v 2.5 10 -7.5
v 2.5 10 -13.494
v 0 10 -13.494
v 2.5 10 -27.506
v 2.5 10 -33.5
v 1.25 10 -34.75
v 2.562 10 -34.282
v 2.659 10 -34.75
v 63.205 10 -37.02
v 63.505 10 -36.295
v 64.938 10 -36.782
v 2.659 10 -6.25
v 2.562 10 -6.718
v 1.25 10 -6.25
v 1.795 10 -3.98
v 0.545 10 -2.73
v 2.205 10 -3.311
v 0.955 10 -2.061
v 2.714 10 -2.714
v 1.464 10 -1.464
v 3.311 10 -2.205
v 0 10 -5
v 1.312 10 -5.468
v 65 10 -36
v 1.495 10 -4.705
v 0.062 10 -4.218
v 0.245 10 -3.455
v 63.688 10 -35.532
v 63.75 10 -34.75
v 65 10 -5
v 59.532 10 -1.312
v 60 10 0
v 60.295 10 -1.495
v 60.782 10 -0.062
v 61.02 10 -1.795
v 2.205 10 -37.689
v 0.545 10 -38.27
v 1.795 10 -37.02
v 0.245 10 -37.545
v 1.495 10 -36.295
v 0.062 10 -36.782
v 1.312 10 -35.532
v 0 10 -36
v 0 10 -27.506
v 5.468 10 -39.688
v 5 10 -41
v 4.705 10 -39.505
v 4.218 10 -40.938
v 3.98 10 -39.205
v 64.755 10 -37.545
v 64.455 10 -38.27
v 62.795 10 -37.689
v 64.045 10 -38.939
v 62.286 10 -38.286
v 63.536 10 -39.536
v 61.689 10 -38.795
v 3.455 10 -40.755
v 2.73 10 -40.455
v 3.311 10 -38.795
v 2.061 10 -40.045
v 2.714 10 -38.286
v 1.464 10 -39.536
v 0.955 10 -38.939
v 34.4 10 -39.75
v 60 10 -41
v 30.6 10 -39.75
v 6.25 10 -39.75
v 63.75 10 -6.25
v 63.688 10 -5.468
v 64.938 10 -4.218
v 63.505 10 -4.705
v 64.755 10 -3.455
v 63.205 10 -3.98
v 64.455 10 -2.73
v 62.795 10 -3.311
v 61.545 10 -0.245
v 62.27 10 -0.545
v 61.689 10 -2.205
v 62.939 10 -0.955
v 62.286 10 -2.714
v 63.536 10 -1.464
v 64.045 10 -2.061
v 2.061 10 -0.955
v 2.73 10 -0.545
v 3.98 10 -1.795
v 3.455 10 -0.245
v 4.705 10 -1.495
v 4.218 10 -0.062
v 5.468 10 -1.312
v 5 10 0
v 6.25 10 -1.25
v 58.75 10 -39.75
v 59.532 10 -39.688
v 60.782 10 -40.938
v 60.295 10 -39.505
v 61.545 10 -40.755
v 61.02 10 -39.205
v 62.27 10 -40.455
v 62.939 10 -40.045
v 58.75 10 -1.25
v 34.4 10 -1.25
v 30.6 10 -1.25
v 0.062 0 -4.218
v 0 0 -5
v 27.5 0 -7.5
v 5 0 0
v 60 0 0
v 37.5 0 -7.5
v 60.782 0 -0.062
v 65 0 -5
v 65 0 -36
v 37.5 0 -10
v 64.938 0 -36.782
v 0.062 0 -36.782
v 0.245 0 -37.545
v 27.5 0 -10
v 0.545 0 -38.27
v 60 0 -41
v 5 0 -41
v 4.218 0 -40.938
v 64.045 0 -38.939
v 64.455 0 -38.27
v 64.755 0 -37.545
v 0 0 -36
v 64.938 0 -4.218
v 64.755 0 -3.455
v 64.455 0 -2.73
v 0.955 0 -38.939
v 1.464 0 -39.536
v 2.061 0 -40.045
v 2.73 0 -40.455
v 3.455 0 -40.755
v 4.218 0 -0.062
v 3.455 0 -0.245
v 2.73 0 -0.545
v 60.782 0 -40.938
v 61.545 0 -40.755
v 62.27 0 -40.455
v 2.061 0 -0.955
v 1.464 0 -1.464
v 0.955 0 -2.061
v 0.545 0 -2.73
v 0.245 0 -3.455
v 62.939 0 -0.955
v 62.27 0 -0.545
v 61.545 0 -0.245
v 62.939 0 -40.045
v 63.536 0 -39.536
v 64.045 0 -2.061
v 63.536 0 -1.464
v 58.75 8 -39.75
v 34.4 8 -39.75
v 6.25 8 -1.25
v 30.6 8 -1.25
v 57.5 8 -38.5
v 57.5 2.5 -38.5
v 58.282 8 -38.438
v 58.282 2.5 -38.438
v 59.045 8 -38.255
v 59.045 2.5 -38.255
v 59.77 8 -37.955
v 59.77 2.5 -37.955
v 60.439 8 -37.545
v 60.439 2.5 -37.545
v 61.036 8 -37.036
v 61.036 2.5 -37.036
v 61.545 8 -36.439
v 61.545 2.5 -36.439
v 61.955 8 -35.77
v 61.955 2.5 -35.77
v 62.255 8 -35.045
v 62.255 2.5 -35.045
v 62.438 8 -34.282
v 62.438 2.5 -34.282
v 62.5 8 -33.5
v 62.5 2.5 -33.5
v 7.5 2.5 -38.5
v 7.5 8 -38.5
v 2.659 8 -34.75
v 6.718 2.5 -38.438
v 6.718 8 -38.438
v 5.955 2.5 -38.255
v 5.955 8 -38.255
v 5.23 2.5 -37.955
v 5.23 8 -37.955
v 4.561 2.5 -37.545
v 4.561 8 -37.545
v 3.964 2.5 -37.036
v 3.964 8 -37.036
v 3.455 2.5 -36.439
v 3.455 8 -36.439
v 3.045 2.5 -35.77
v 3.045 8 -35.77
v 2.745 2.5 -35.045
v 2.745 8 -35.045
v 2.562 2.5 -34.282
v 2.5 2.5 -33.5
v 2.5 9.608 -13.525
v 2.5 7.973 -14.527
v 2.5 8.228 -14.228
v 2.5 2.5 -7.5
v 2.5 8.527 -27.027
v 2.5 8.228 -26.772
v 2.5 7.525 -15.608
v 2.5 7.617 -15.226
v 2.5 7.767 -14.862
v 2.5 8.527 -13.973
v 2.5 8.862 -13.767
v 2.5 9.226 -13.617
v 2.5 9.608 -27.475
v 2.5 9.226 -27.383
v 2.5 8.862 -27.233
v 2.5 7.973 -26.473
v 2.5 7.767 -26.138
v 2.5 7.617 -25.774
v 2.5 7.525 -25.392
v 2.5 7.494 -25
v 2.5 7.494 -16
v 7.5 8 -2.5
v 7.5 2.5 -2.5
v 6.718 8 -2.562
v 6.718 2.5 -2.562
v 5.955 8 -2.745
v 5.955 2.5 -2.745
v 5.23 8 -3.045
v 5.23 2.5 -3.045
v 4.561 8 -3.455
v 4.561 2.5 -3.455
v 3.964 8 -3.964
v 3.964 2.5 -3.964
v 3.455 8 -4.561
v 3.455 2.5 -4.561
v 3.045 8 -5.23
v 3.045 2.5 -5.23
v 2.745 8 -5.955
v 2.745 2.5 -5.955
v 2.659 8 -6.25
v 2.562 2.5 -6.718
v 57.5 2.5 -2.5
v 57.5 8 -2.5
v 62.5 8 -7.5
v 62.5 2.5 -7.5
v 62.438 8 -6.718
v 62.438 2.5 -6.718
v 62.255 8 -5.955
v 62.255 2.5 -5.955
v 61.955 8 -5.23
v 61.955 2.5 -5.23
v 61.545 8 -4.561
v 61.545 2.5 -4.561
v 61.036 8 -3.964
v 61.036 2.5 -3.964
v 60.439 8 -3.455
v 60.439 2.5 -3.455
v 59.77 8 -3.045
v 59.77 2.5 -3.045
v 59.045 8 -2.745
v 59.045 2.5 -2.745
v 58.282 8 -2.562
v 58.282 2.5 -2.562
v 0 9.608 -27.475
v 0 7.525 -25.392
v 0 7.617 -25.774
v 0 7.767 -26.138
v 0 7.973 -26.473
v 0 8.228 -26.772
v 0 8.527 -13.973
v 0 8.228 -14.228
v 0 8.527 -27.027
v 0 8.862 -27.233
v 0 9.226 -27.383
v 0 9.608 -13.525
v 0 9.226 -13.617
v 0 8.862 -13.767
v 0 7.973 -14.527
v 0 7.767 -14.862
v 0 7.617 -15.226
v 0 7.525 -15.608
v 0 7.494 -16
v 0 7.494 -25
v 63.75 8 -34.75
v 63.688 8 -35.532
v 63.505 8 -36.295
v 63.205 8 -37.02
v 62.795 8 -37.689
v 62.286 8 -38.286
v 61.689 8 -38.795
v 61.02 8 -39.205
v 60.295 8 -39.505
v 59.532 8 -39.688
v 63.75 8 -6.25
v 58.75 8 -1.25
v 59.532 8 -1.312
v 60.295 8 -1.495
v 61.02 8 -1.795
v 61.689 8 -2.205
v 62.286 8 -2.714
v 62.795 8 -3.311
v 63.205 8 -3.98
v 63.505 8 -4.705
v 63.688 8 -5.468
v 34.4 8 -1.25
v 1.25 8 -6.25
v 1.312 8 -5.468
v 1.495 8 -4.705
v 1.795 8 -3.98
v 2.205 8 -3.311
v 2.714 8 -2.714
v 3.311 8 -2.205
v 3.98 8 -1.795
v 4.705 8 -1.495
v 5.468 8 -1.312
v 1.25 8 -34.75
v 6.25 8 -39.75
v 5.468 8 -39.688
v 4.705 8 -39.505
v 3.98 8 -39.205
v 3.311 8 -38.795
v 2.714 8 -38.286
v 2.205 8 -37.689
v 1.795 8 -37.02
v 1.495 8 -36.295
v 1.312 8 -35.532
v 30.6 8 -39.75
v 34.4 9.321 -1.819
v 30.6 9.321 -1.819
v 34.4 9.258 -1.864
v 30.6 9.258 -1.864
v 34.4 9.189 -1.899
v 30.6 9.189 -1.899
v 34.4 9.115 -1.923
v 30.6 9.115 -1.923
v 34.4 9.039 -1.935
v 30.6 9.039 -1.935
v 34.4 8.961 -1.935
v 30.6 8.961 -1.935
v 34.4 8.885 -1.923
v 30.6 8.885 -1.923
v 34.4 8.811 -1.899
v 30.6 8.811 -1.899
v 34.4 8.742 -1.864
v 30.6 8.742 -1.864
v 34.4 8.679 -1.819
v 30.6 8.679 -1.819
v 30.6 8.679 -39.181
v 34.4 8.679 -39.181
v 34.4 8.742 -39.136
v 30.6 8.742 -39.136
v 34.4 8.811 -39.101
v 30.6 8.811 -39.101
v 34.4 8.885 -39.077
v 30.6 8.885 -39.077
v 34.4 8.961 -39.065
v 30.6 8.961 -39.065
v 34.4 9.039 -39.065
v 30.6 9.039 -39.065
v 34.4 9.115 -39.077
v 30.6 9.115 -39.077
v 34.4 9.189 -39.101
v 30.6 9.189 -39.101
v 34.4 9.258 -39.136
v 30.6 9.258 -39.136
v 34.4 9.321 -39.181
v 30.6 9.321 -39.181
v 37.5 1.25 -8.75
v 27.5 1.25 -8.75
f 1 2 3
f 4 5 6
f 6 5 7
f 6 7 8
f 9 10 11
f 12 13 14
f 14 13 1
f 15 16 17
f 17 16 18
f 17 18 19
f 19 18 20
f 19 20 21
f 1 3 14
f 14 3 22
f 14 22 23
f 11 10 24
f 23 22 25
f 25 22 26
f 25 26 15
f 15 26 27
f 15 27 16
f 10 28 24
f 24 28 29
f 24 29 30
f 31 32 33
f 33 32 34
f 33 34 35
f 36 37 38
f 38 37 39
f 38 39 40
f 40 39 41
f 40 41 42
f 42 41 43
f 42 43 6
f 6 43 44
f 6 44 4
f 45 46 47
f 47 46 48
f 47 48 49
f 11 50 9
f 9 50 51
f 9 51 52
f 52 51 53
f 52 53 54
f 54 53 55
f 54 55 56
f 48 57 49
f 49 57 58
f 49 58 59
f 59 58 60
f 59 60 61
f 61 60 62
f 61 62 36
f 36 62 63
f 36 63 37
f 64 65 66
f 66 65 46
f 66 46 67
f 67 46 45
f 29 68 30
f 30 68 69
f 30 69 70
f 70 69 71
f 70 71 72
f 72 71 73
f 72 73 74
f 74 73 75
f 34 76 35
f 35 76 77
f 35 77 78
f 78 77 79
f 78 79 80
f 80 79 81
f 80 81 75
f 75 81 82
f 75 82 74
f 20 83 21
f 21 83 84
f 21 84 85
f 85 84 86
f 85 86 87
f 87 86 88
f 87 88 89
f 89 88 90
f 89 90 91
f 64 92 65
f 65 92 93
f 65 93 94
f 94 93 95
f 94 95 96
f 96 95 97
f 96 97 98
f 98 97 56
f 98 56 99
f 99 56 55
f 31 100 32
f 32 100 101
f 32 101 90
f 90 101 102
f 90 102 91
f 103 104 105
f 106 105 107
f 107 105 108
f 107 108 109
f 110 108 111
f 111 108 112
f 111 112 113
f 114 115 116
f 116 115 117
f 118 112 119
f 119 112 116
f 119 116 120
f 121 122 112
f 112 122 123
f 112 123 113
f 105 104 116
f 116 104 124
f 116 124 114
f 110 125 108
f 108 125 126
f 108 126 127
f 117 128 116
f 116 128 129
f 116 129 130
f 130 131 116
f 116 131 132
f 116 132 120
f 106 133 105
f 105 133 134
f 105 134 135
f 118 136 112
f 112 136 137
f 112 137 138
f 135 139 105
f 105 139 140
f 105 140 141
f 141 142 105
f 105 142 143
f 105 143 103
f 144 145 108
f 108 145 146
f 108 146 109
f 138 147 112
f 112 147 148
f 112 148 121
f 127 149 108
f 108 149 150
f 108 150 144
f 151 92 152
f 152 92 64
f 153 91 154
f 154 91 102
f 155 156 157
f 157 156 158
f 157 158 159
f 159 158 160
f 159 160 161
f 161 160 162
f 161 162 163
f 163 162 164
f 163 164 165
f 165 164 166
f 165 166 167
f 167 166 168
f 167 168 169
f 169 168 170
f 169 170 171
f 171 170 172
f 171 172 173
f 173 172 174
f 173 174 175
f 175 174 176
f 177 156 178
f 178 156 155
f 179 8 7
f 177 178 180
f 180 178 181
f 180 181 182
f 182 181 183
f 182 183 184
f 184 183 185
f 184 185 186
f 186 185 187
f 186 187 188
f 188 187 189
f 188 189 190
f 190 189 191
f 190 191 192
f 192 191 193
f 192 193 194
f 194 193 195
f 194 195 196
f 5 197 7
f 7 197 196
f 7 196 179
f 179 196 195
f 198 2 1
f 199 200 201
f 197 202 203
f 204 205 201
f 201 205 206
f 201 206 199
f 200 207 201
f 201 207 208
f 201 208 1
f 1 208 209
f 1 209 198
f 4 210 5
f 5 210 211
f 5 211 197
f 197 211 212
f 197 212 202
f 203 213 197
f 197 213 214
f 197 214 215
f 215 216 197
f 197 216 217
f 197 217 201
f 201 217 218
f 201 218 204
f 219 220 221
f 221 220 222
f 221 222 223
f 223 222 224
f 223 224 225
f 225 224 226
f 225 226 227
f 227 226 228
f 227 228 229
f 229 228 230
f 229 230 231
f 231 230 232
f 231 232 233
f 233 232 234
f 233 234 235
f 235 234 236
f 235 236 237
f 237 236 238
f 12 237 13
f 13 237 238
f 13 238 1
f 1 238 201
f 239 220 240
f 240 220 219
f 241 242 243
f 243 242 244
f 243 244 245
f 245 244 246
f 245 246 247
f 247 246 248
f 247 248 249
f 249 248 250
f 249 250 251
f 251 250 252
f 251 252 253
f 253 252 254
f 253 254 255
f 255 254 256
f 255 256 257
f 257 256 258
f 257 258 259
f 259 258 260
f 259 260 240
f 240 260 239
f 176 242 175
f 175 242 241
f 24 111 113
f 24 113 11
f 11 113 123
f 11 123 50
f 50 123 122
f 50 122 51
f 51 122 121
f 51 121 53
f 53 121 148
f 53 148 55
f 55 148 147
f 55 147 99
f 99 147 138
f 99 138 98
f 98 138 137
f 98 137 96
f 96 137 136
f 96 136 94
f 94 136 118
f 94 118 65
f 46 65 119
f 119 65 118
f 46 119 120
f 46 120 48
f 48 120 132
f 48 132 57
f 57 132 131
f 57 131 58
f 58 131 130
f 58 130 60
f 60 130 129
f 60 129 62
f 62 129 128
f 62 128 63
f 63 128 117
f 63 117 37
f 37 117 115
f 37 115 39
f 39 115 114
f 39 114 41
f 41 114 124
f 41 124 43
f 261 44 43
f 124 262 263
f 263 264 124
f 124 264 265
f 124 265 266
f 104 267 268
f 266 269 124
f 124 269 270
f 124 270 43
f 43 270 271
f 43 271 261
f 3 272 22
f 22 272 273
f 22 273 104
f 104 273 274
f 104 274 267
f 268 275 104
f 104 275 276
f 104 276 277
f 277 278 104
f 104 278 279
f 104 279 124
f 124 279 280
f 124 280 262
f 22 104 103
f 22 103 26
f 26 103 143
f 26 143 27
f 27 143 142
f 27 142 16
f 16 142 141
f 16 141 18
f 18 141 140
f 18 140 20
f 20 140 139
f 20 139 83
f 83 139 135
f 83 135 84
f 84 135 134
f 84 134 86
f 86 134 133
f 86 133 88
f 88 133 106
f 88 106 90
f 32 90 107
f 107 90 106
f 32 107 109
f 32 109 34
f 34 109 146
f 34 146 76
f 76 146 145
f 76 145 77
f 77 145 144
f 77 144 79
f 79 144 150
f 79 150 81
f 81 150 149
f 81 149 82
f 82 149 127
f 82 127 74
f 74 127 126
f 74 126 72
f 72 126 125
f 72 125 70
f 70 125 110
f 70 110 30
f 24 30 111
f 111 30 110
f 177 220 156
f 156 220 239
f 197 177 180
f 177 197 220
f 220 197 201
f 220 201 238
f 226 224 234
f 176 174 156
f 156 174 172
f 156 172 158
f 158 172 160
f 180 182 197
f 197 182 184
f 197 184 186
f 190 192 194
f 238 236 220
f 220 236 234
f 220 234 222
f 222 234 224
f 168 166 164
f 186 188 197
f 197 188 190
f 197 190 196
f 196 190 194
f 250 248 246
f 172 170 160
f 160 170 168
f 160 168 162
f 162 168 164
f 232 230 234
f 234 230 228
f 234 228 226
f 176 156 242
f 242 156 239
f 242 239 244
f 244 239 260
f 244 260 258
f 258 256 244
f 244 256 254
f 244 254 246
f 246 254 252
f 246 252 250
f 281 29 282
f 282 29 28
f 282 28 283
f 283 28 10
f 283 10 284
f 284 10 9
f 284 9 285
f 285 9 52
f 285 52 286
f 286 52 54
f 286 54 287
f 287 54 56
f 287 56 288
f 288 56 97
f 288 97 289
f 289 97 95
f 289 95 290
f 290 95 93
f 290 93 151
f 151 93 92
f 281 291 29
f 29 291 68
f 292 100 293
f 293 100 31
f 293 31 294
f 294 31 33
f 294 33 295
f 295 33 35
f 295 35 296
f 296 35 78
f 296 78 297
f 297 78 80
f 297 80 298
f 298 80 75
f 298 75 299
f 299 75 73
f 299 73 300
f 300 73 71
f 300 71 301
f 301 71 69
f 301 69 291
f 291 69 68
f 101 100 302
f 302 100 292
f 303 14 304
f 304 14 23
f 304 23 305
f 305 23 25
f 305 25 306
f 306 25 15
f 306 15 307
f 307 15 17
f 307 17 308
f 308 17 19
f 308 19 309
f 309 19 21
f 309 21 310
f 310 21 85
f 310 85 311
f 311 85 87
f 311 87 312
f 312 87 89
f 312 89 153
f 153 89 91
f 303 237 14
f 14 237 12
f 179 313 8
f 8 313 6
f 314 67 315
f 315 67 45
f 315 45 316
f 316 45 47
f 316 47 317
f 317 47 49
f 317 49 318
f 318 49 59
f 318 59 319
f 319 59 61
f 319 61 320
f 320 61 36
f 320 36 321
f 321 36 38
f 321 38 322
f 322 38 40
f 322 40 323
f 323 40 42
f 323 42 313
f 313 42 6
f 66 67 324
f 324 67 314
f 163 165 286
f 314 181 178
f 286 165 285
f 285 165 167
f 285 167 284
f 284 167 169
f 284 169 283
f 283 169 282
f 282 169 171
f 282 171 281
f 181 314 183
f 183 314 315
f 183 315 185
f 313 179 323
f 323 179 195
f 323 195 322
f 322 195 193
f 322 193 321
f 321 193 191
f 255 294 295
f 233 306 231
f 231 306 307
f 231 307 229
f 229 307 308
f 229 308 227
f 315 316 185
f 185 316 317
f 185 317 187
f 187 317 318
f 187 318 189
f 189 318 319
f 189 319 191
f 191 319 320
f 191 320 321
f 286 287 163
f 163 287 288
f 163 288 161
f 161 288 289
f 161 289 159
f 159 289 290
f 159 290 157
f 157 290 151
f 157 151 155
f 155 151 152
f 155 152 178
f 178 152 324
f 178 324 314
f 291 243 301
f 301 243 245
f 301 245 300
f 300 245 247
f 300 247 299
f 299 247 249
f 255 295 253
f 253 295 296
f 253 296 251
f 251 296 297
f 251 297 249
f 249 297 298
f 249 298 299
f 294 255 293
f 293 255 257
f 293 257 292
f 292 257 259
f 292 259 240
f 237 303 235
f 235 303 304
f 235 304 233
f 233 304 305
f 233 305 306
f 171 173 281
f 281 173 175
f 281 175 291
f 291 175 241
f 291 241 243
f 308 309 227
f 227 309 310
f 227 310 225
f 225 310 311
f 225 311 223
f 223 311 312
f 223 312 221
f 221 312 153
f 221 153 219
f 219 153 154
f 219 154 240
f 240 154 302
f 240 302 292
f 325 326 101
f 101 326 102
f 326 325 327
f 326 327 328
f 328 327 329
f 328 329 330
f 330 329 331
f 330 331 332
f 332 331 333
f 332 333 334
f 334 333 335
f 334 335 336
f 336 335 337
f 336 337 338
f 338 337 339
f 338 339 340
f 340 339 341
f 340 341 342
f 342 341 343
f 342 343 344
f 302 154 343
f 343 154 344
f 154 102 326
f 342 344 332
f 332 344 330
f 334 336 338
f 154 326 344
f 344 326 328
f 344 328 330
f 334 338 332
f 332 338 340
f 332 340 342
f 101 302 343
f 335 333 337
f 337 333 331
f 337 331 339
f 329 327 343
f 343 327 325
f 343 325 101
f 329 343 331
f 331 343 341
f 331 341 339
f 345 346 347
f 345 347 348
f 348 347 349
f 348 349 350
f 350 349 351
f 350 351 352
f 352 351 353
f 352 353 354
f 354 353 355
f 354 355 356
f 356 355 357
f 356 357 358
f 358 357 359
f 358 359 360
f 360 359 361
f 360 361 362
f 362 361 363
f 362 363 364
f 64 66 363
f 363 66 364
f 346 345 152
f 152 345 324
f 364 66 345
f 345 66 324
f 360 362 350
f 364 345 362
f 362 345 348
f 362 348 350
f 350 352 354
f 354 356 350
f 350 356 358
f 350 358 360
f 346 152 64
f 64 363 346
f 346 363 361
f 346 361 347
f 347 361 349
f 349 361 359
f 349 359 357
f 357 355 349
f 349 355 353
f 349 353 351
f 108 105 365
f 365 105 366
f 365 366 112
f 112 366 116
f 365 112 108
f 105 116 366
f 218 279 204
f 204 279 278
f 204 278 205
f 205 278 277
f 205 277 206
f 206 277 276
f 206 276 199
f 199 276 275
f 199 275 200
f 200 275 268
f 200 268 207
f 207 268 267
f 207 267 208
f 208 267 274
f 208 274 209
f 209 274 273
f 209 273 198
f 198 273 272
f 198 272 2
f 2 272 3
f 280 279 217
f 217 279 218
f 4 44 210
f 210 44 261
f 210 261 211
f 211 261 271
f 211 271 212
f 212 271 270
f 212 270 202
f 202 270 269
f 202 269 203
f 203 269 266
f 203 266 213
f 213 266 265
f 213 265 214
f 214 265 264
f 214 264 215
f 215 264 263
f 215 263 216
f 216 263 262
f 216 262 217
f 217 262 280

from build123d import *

# Parameters (mm, degrees)
BOSS_EXTRUDE1_DEPTH      = 10
BOSS_EXTRUDE2_DEPTH      = 2.5
CUT_EXTRUDE2_START       = -2
CUT_EXTRUDE2_DEPTH       = 2
BOSS_EXTRUDE3_DEPTH      = 1.9
BOSS_EXTRUDE3_DEPTH_BACK = 1.9
CUT_EXTRUDE3_DEPTH       = 5
CUT_EXTRUDE3_DEPTH_BACK  = 5
CUT_EXTRUDE4_DEPTH       = 10


with BuildPart() as part:
    # Sketch1 → Boss-Extrude1 (new body)
    with BuildSketch(Plane(origin=(0, 0, 0), x_dir=(1, 0, 0), z_dir=(0, 1, 0))):
        with BuildLine():
            Line((5, 0), (60, 0))
            ThreePointArc((60, 0), (63.535533906, 1.464466094), (65, 5))
            Line((65, 5), (65, 36))
            ThreePointArc((65, 36), (63.535533906, 39.535533906), (60, 41))
            Line((60, 41), (5, 41))
            ThreePointArc((5, 41), (1.464466094, 39.535533906), (0, 36))
            Line((0, 36), (0, 5))
            ThreePointArc((0, 5), (1.464466094, 1.464466094), (5, 0))
        make_face()
        with BuildLine():
            Line((7.5, 38.5), (57.5, 38.5))
            ThreePointArc((57.5, 38.5), (61.035533906, 37.035533906), (62.5, 33.5))
            Line((62.5, 33.5), (62.5, 7.5))
            ThreePointArc((62.5, 7.5), (61.035533906, 3.964466094), (57.5, 2.5))
            Line((57.5, 2.5), (7.5, 2.5))
            ThreePointArc((7.5, 2.5), (3.964466094, 3.964466094), (2.5, 7.5))
            Line((2.5, 7.5), (2.5, 33.5))
            ThreePointArc((2.5, 33.5), (3.964466094, 37.035533906), (7.5, 38.5))
        make_face(mode=Mode.SUBTRACT)
    extrude(amount=BOSS_EXTRUDE1_DEPTH)

    # Sketch2 → Boss-Extrude2 (add)
    with BuildSketch(Plane(origin=(0, 0, 0), x_dir=(1, 0, 0), z_dir=(0, 1, 0))):
        with BuildLine():
            Line((7.5, 38.5), (57.5, 38.5))
            ThreePointArc((57.5, 38.5), (61.035533906, 37.035533906), (62.5, 33.5))
            Line((62.5, 33.5), (62.5, 7.5))
            ThreePointArc((62.5, 7.5), (61.035533906, 3.964466094), (57.5, 2.5))
            Line((57.5, 2.5), (7.5, 2.5))
            ThreePointArc((7.5, 2.5), (3.964466094, 3.964466094), (2.5, 7.5))
            Line((2.5, 7.5), (2.5, 33.5))
            ThreePointArc((2.5, 33.5), (3.964466094, 37.035533906), (7.5, 38.5))
        make_face()
    extrude(amount=BOSS_EXTRUDE2_DEPTH)

    # Sketch4 → Cut-Extrude2 (cut)
    with BuildSketch(Plane(origin=(0, 10, 0), x_dir=(1, 0, 0), z_dir=(0, 1, 0)).offset(CUT_EXTRUDE2_START)):
        with BuildLine():
            Line((6.25, 39.75), (58.75, 39.75))
            ThreePointArc((58.75, 39.75), (62.285533906, 38.285533906), (63.75, 34.75))
            Line((63.75, 34.75), (63.75, 6.25))
            ThreePointArc((63.75, 6.25), (62.285533906, 2.714466094), (58.75, 1.25))
            Line((58.75, 1.25), (6.25, 1.25))
            ThreePointArc((6.25, 1.25), (2.714466094, 2.714466094), (1.25, 6.25))
            Line((1.25, 6.25), (2.658770817, 6.25))
            ThreePointArc((2.658770817, 6.25), (4.438137822, 3.547152925), (7.5, 2.5))
            Line((7.5, 2.5), (57.5, 2.5))
            ThreePointArc((57.5, 2.5), (61.035533906, 3.964466094), (62.5, 7.5))
            Line((62.5, 7.5), (62.5, 33.5))
            ThreePointArc((62.5, 33.5), (61.035533906, 37.035533906), (57.5, 38.5))
            Line((57.5, 38.5), (7.5, 38.5))
            ThreePointArc((7.5, 38.5), (4.438137822, 37.452847075), (2.658770817, 34.75))
            Line((2.658770817, 34.75), (1.25, 34.75))
            ThreePointArc((1.25, 34.75), (2.714466094, 38.285533906), (6.25, 39.75))
        make_face()
    extrude(amount=CUT_EXTRUDE2_DEPTH, mode=Mode.SUBTRACT)

    # Sketch5 → Boss-Extrude3 (add, two sides: drawn at the far end of the back side and taken through both)
    with BuildSketch(Plane(origin=(32.5, 0, 0), x_dir=(0, 0, -1), z_dir=(1, 0, 0)).offset(-BOSS_EXTRUDE3_DEPTH_BACK)):
        with BuildLine():
            Line((1.25, 10), (1.25, 8))
            Line((1.25, 8), (1.81941821, 8.678606187))
            ThreePointArc((1.81941821, 8.678606187), (1.936395991, 8.999999993), (1.819418212, 9.3213938))
            Line((1.819418212, 9.3213938), (1.25, 10))
        make_face()
        with BuildLine():
            Line((39.180581788, 9.3213938), (39.75, 10))
            Line((39.75, 10), (39.75, 8))
            Line((39.75, 8), (39.18058179, 8.678606187))
            ThreePointArc((39.18058179, 8.678606187), (39.063604009, 8.999999993), (39.180581788, 9.3213938))
        make_face()
    extrude(amount=BOSS_EXTRUDE3_DEPTH + BOSS_EXTRUDE3_DEPTH_BACK)

    # Sketch6 → Cut-Extrude3 (cut, two sides: drawn at the far end of the back side and taken through both)
    with BuildSketch(Plane(origin=(32.5, 0, 0), x_dir=(0, 0, -1), z_dir=(1, 0, 0)).offset(-CUT_EXTRUDE3_DEPTH_BACK)):
        Polygon((10, 0), (8.75, 1.25), (7.5, 0), align=None)
    extrude(amount=CUT_EXTRUDE3_DEPTH + CUT_EXTRUDE3_DEPTH_BACK, mode=Mode.SUBTRACT)

    # Sketch3 → Cut-Extrude4 (cut)
    with BuildSketch(Plane(origin=(0, 0, 0), x_dir=(0, 0, -1), z_dir=(1, 0, 0))):
        with BuildLine():
            Line((25.000032513, 7.494104603), (15.999967487, 7.494104603))
            ThreePointArc((15.999967487, 7.494104603), (13.49407209, 10), (15.999967487, 12.505895397))
            Line((15.999967487, 12.505895397), (25.000032513, 12.505895397))
            ThreePointArc((25.000032513, 12.505895397), (27.50592791, 10), (25.000032513, 7.494104603))
        make_face()
    extrude(amount=CUT_EXTRUDE4_DEPTH, mode=Mode.SUBTRACT)


solid = part.part
